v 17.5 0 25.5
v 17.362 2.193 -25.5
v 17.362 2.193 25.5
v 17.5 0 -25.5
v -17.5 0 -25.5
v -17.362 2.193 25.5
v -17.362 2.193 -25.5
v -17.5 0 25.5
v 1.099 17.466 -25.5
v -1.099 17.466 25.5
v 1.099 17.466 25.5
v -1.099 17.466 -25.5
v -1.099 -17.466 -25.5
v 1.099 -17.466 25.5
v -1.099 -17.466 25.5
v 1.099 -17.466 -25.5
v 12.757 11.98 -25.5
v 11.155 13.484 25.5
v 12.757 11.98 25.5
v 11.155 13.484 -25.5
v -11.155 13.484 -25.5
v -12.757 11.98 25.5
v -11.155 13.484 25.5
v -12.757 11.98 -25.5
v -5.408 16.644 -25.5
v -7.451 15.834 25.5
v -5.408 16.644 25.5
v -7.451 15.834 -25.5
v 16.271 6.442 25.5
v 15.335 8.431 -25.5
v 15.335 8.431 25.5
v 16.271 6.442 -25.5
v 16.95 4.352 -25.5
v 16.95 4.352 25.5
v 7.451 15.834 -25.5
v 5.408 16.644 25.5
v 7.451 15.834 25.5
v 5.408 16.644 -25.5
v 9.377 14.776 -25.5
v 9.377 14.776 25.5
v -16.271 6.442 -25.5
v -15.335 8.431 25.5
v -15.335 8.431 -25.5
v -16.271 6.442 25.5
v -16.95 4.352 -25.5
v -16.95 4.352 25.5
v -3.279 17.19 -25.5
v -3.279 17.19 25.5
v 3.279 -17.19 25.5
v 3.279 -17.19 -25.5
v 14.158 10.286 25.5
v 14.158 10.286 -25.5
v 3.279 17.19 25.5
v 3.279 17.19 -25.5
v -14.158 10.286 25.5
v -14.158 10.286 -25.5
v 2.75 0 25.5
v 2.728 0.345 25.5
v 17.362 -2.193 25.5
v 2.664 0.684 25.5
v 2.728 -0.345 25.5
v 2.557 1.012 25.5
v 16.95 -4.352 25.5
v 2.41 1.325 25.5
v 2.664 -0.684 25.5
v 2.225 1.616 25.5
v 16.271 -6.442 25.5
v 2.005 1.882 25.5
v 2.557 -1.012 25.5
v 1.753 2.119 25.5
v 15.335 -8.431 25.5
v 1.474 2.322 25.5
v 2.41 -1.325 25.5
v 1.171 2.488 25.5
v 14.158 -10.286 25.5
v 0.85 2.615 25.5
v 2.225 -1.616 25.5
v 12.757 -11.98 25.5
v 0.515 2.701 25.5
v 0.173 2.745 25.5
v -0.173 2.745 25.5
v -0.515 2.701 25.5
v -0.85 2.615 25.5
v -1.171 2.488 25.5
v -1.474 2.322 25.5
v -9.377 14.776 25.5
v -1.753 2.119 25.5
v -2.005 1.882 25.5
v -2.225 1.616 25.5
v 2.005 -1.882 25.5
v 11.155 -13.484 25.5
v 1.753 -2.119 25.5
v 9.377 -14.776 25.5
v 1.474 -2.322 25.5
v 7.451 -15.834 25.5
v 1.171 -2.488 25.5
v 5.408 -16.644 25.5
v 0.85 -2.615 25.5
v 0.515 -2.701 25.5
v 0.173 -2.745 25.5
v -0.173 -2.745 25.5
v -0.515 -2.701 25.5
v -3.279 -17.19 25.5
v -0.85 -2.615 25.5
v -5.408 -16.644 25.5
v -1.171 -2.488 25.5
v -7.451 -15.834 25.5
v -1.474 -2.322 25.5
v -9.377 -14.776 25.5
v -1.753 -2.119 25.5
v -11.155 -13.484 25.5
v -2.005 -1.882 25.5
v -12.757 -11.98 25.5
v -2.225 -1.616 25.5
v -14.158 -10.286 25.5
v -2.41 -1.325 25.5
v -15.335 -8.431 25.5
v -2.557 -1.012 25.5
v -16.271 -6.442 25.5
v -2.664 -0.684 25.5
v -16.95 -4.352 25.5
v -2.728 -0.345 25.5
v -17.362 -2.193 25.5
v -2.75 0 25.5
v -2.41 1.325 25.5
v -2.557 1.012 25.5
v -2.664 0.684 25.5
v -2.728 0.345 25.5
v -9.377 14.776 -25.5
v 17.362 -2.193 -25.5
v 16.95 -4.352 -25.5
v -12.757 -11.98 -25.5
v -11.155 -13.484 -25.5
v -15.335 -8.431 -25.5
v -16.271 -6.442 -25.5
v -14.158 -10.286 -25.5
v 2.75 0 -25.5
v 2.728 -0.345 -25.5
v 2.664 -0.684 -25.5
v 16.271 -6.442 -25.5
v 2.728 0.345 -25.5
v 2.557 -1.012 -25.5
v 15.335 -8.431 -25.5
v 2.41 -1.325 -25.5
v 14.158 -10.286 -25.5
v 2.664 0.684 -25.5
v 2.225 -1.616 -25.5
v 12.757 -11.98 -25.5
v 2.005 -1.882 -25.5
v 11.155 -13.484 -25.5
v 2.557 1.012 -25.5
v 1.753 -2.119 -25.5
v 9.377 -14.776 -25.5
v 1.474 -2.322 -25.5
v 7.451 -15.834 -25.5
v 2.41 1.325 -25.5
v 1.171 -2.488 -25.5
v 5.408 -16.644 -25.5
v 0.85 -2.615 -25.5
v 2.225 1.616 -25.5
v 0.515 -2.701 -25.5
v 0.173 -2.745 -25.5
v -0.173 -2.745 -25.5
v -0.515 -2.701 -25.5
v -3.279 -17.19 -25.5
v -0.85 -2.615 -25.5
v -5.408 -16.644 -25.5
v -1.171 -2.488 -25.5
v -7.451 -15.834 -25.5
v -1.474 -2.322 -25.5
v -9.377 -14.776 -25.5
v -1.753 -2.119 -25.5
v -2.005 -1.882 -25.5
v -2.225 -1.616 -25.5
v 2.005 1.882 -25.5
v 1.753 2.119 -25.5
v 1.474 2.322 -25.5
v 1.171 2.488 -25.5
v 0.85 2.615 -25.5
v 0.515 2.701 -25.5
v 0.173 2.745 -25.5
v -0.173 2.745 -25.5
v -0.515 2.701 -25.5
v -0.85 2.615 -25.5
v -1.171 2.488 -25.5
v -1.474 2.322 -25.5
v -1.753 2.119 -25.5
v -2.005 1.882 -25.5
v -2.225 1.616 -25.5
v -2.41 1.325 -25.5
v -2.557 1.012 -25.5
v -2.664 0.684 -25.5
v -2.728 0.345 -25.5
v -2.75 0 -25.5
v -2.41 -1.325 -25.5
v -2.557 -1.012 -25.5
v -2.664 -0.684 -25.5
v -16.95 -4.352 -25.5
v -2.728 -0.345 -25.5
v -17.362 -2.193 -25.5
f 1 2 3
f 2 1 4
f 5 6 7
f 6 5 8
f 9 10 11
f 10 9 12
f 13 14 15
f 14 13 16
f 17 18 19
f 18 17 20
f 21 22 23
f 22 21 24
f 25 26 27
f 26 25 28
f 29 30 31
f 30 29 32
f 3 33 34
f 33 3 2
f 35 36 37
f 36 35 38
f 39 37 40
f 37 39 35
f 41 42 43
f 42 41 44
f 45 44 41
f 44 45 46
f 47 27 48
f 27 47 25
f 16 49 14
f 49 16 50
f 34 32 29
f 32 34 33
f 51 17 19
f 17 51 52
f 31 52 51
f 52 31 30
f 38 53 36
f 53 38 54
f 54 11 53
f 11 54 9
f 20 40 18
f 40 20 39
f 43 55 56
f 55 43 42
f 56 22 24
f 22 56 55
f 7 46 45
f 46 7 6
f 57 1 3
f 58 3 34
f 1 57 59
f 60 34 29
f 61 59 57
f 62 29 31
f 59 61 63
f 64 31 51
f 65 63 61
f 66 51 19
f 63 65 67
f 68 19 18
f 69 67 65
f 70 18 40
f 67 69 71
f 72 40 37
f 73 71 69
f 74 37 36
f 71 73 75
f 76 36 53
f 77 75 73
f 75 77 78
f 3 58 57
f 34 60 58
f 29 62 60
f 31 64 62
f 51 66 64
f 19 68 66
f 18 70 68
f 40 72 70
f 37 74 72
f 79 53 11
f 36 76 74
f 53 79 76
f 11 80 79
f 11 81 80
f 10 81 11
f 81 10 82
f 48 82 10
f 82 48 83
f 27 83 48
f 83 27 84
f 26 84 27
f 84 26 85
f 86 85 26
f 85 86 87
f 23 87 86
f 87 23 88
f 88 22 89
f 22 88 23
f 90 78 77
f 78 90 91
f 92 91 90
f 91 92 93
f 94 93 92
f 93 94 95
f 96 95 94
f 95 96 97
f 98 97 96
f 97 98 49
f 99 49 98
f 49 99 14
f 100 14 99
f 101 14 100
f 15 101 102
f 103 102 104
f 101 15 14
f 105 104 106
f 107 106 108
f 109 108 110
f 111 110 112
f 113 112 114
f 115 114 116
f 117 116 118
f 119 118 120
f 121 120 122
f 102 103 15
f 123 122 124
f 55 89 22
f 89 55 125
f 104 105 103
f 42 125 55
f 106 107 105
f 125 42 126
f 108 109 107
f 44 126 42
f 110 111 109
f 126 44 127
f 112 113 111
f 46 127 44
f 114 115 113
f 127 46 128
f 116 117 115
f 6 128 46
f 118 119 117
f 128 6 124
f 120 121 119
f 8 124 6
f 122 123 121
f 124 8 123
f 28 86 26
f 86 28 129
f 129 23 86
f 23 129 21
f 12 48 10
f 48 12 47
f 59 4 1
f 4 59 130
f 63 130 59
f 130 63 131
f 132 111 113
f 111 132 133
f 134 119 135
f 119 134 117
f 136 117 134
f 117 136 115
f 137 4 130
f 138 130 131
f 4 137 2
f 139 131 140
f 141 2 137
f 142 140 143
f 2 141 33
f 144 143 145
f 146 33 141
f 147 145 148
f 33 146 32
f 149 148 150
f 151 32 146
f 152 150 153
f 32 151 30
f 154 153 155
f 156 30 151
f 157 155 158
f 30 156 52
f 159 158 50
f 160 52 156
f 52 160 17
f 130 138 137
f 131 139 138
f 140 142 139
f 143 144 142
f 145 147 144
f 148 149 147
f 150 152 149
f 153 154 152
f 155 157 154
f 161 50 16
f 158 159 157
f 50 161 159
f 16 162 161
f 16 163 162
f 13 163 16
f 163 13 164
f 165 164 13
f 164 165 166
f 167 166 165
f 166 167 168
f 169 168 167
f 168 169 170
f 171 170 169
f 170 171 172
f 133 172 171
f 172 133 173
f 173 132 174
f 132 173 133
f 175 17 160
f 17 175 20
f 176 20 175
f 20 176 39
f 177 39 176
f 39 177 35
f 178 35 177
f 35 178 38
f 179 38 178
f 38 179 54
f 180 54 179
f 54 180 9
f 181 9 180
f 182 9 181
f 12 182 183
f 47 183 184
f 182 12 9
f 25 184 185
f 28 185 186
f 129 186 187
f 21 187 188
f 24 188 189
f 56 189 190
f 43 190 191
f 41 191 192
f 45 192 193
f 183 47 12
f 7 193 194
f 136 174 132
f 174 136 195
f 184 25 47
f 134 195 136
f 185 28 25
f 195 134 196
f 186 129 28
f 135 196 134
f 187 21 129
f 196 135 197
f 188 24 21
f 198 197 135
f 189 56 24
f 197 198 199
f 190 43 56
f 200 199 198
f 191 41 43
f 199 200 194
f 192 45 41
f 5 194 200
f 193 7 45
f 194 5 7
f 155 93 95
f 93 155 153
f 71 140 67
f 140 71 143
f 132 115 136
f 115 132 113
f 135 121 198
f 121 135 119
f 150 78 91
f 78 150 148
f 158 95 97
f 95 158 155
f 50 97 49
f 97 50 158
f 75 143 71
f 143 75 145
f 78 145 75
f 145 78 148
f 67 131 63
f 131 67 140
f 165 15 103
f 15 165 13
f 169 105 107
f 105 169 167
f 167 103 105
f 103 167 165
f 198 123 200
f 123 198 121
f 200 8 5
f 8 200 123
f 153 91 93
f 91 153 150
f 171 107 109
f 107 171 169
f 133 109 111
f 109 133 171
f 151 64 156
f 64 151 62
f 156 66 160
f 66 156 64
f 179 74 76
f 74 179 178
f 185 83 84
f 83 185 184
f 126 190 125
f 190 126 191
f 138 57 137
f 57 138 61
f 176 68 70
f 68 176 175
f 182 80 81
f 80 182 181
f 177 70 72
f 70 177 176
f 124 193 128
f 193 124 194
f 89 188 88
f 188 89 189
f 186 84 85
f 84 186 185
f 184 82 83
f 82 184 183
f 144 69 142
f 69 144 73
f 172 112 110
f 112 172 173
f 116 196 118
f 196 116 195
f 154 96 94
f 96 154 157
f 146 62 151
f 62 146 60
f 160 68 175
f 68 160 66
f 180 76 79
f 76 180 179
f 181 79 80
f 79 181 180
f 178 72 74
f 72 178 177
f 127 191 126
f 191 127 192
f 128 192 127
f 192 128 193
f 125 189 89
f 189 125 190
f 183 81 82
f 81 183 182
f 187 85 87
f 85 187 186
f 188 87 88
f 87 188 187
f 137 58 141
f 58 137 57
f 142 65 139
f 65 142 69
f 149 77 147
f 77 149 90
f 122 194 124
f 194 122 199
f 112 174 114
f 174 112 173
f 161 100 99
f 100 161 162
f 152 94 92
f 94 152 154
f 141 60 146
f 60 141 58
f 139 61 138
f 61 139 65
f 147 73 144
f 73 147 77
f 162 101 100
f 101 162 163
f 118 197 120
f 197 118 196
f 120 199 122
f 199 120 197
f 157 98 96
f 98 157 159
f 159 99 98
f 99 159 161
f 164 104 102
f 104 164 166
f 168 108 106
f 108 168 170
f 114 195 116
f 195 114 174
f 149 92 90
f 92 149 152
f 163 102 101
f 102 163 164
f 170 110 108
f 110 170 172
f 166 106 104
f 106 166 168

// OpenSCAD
$fn = 50;


difference() {
	union() {
		translate(v = [0, 0, -25.5000000000]) {
			cylinder(h = 51, r = 17.5000000000);
		}
	}
	union() {
		translate(v = [0, 0, -100.0000000000]) {
			cylinder(h = 200, r = 2.7500000000);
		}
	}
}
